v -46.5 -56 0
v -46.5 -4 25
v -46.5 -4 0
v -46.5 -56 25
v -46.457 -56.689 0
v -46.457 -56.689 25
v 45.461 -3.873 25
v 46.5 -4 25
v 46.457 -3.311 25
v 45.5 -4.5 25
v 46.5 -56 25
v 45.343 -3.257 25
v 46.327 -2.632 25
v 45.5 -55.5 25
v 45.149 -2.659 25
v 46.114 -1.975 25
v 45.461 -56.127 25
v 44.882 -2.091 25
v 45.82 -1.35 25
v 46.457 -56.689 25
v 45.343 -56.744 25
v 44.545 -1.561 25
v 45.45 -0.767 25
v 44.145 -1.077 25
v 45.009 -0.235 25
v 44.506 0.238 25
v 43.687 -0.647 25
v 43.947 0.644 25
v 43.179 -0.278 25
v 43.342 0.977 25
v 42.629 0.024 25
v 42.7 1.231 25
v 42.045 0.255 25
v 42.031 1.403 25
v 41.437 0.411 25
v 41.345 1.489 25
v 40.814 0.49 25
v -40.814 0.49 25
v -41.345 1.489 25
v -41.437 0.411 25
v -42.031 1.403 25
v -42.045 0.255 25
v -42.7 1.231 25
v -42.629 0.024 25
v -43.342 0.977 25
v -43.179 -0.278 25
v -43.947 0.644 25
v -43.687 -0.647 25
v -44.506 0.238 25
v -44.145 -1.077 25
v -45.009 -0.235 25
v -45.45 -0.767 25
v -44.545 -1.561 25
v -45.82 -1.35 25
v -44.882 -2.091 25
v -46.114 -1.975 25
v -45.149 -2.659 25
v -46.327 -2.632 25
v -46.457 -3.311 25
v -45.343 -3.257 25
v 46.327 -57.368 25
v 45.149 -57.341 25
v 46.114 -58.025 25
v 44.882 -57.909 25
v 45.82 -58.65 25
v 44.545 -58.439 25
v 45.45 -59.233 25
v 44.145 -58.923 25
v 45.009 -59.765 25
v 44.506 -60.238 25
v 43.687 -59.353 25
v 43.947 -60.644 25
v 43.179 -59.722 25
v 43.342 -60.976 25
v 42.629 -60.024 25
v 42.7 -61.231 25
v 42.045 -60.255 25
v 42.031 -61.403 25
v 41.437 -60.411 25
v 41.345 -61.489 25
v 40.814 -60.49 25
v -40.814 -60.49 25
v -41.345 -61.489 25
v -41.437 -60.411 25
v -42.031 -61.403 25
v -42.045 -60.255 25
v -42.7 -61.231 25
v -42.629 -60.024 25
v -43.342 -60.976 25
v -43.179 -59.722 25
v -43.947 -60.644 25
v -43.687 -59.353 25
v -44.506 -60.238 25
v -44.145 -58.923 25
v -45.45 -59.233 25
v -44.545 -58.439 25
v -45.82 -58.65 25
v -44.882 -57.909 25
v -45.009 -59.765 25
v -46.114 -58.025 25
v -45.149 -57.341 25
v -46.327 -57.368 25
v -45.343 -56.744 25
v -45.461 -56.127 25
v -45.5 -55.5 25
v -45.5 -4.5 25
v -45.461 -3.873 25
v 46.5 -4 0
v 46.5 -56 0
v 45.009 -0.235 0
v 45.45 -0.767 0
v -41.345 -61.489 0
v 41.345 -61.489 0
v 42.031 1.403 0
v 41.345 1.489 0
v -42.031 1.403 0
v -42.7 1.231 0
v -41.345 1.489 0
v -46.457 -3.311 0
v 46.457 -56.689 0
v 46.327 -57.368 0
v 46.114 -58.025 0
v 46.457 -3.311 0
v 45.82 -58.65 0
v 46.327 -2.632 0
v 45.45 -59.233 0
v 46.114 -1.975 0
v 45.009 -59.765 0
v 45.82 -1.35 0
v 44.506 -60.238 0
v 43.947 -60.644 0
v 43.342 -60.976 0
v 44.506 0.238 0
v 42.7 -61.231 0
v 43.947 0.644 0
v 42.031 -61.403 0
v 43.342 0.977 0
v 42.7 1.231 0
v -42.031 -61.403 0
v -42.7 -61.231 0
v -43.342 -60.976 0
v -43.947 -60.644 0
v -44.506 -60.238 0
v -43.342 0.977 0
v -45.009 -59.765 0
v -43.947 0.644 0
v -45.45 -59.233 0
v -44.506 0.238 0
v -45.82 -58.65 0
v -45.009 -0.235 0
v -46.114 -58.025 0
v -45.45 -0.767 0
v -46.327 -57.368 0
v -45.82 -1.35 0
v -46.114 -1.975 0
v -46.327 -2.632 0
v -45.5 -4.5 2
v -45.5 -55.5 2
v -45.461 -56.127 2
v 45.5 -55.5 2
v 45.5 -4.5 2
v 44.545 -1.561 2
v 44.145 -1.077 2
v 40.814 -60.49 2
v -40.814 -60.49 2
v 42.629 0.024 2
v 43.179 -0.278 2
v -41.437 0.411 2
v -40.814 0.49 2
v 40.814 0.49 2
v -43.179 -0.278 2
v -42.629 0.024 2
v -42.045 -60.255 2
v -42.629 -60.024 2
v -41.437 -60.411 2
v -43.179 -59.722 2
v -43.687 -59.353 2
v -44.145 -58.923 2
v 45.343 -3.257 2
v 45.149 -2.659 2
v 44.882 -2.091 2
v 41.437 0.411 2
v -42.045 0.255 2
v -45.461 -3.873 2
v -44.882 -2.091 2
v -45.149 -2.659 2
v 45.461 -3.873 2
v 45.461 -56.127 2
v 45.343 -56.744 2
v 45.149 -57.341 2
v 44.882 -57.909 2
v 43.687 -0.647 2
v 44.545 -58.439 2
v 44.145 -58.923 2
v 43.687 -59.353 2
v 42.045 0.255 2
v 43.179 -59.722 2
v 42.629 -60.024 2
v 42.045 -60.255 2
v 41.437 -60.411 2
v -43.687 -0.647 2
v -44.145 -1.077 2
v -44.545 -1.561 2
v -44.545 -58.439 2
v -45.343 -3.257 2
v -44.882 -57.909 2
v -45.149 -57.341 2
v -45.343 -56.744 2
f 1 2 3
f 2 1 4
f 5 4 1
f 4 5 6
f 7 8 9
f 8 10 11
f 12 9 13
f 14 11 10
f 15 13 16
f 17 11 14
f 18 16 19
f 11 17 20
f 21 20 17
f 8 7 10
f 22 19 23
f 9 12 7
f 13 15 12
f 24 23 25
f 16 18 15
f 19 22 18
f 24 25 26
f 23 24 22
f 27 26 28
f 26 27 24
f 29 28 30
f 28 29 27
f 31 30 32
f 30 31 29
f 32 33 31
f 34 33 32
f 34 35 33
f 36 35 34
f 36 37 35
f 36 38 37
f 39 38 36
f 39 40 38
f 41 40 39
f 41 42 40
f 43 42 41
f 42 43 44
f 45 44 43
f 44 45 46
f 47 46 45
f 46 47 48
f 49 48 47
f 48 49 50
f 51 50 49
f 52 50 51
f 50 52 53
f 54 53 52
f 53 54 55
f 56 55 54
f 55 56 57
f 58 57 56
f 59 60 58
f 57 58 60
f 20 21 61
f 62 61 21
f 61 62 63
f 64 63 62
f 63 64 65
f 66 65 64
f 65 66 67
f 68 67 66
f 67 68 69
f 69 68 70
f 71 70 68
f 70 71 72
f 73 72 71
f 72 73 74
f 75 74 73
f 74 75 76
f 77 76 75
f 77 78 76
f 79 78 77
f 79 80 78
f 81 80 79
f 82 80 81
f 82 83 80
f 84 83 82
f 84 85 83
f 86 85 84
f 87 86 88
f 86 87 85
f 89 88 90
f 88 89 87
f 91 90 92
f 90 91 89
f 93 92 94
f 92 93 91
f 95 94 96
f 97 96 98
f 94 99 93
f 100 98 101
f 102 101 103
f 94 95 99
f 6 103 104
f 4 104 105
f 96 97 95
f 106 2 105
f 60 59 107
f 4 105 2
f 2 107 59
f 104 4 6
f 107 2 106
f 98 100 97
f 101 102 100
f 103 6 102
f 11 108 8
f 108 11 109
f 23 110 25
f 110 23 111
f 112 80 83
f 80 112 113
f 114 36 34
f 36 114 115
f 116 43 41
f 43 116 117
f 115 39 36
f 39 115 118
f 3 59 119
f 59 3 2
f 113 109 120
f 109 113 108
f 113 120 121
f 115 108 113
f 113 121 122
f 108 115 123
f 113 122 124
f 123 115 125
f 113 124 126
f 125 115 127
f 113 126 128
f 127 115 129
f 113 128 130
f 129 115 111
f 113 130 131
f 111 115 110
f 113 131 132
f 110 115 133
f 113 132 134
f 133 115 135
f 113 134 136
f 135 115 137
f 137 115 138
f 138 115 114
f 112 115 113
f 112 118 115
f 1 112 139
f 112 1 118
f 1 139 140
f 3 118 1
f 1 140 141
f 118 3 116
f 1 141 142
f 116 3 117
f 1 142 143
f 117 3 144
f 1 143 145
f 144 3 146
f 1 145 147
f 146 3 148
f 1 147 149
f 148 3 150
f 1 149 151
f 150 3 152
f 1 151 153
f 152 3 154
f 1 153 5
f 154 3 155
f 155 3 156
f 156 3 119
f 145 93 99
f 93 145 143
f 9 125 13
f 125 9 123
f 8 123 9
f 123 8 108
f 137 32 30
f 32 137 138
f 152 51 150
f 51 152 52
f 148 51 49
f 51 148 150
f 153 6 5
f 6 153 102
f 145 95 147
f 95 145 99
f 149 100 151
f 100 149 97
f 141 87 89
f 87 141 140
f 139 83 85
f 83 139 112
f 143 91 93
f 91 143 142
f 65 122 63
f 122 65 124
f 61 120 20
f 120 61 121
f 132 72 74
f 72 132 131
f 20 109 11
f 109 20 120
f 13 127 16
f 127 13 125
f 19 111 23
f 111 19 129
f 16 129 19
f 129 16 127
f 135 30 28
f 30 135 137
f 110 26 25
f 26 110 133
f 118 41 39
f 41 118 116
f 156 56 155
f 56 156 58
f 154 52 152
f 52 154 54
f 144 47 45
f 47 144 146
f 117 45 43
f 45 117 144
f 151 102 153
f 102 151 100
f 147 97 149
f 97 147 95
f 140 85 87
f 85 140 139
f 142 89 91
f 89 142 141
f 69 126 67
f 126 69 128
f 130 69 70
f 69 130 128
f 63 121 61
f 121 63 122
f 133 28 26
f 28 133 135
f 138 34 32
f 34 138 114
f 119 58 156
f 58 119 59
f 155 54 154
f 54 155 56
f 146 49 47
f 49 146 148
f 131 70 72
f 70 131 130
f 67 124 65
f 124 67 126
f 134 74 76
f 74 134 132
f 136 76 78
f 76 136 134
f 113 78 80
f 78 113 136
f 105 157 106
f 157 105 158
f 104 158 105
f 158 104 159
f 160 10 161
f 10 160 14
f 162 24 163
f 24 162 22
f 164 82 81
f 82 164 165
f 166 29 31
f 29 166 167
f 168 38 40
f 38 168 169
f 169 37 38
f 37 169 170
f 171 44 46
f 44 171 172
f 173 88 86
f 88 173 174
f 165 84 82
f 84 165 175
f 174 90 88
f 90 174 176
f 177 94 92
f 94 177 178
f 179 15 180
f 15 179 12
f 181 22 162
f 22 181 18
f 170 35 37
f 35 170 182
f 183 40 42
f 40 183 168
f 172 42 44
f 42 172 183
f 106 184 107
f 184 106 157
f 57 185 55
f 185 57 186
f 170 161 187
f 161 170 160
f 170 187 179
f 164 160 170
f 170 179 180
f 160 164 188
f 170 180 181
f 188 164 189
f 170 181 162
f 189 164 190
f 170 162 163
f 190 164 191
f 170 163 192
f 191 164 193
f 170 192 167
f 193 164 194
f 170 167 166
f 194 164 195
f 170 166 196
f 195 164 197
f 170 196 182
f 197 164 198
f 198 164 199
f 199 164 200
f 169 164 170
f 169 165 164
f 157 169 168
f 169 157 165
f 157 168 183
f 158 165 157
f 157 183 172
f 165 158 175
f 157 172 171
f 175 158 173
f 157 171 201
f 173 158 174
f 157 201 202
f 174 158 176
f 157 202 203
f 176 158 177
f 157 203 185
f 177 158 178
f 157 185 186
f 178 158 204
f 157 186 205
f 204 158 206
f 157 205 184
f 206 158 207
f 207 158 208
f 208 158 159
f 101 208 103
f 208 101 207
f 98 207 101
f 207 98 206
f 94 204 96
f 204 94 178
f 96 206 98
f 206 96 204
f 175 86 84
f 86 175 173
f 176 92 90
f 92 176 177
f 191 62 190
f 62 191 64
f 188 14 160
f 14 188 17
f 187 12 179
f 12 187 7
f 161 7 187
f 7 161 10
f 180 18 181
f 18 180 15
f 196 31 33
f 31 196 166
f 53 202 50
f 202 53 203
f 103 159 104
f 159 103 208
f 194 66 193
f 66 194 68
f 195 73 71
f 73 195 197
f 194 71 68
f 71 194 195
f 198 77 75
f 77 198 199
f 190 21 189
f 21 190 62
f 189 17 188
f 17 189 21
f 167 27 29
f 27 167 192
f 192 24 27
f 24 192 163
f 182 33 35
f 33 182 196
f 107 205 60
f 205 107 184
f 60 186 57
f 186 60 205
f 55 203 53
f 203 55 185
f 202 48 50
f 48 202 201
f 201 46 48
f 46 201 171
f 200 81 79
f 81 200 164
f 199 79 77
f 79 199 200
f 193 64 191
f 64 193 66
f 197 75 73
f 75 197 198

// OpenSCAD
$fn = 50;


difference() {
	union() {
		translate(v = [0, -30.0000000000, 0]) {
			hull() {
				translate(v = [-41.0000000000, 26.0000000000, 0]) {
					cylinder(h = 25, r = 5.5000000000);
				}
				translate(v = [41.0000000000, 26.0000000000, 0]) {
					cylinder(h = 25, r = 5.5000000000);
				}
				translate(v = [-41.0000000000, -26.0000000000, 0]) {
					cylinder(h = 25, r = 5.5000000000);
				}
				translate(v = [41.0000000000, -26.0000000000, 0]) {
					cylinder(h = 25, r = 5.5000000000);
				}
			}
		}
	}
	union() {
		translate(v = [0, -30.0000000000, 2]) {
			hull() {
				translate(v = [-40.5000000000, 25.5000000000, 0]) {
					cylinder(h = 50, r = 5);
				}
				translate(v = [40.5000000000, 25.5000000000, 0]) {
					cylinder(h = 50, r = 5);
				}
				translate(v = [-40.5000000000, -25.5000000000, 0]) {
					cylinder(h = 50, r = 5);
				}
				translate(v = [40.5000000000, -25.5000000000, 0]) {
					cylinder(h = 50, r = 5);
				}
			}
		}
	}
}
